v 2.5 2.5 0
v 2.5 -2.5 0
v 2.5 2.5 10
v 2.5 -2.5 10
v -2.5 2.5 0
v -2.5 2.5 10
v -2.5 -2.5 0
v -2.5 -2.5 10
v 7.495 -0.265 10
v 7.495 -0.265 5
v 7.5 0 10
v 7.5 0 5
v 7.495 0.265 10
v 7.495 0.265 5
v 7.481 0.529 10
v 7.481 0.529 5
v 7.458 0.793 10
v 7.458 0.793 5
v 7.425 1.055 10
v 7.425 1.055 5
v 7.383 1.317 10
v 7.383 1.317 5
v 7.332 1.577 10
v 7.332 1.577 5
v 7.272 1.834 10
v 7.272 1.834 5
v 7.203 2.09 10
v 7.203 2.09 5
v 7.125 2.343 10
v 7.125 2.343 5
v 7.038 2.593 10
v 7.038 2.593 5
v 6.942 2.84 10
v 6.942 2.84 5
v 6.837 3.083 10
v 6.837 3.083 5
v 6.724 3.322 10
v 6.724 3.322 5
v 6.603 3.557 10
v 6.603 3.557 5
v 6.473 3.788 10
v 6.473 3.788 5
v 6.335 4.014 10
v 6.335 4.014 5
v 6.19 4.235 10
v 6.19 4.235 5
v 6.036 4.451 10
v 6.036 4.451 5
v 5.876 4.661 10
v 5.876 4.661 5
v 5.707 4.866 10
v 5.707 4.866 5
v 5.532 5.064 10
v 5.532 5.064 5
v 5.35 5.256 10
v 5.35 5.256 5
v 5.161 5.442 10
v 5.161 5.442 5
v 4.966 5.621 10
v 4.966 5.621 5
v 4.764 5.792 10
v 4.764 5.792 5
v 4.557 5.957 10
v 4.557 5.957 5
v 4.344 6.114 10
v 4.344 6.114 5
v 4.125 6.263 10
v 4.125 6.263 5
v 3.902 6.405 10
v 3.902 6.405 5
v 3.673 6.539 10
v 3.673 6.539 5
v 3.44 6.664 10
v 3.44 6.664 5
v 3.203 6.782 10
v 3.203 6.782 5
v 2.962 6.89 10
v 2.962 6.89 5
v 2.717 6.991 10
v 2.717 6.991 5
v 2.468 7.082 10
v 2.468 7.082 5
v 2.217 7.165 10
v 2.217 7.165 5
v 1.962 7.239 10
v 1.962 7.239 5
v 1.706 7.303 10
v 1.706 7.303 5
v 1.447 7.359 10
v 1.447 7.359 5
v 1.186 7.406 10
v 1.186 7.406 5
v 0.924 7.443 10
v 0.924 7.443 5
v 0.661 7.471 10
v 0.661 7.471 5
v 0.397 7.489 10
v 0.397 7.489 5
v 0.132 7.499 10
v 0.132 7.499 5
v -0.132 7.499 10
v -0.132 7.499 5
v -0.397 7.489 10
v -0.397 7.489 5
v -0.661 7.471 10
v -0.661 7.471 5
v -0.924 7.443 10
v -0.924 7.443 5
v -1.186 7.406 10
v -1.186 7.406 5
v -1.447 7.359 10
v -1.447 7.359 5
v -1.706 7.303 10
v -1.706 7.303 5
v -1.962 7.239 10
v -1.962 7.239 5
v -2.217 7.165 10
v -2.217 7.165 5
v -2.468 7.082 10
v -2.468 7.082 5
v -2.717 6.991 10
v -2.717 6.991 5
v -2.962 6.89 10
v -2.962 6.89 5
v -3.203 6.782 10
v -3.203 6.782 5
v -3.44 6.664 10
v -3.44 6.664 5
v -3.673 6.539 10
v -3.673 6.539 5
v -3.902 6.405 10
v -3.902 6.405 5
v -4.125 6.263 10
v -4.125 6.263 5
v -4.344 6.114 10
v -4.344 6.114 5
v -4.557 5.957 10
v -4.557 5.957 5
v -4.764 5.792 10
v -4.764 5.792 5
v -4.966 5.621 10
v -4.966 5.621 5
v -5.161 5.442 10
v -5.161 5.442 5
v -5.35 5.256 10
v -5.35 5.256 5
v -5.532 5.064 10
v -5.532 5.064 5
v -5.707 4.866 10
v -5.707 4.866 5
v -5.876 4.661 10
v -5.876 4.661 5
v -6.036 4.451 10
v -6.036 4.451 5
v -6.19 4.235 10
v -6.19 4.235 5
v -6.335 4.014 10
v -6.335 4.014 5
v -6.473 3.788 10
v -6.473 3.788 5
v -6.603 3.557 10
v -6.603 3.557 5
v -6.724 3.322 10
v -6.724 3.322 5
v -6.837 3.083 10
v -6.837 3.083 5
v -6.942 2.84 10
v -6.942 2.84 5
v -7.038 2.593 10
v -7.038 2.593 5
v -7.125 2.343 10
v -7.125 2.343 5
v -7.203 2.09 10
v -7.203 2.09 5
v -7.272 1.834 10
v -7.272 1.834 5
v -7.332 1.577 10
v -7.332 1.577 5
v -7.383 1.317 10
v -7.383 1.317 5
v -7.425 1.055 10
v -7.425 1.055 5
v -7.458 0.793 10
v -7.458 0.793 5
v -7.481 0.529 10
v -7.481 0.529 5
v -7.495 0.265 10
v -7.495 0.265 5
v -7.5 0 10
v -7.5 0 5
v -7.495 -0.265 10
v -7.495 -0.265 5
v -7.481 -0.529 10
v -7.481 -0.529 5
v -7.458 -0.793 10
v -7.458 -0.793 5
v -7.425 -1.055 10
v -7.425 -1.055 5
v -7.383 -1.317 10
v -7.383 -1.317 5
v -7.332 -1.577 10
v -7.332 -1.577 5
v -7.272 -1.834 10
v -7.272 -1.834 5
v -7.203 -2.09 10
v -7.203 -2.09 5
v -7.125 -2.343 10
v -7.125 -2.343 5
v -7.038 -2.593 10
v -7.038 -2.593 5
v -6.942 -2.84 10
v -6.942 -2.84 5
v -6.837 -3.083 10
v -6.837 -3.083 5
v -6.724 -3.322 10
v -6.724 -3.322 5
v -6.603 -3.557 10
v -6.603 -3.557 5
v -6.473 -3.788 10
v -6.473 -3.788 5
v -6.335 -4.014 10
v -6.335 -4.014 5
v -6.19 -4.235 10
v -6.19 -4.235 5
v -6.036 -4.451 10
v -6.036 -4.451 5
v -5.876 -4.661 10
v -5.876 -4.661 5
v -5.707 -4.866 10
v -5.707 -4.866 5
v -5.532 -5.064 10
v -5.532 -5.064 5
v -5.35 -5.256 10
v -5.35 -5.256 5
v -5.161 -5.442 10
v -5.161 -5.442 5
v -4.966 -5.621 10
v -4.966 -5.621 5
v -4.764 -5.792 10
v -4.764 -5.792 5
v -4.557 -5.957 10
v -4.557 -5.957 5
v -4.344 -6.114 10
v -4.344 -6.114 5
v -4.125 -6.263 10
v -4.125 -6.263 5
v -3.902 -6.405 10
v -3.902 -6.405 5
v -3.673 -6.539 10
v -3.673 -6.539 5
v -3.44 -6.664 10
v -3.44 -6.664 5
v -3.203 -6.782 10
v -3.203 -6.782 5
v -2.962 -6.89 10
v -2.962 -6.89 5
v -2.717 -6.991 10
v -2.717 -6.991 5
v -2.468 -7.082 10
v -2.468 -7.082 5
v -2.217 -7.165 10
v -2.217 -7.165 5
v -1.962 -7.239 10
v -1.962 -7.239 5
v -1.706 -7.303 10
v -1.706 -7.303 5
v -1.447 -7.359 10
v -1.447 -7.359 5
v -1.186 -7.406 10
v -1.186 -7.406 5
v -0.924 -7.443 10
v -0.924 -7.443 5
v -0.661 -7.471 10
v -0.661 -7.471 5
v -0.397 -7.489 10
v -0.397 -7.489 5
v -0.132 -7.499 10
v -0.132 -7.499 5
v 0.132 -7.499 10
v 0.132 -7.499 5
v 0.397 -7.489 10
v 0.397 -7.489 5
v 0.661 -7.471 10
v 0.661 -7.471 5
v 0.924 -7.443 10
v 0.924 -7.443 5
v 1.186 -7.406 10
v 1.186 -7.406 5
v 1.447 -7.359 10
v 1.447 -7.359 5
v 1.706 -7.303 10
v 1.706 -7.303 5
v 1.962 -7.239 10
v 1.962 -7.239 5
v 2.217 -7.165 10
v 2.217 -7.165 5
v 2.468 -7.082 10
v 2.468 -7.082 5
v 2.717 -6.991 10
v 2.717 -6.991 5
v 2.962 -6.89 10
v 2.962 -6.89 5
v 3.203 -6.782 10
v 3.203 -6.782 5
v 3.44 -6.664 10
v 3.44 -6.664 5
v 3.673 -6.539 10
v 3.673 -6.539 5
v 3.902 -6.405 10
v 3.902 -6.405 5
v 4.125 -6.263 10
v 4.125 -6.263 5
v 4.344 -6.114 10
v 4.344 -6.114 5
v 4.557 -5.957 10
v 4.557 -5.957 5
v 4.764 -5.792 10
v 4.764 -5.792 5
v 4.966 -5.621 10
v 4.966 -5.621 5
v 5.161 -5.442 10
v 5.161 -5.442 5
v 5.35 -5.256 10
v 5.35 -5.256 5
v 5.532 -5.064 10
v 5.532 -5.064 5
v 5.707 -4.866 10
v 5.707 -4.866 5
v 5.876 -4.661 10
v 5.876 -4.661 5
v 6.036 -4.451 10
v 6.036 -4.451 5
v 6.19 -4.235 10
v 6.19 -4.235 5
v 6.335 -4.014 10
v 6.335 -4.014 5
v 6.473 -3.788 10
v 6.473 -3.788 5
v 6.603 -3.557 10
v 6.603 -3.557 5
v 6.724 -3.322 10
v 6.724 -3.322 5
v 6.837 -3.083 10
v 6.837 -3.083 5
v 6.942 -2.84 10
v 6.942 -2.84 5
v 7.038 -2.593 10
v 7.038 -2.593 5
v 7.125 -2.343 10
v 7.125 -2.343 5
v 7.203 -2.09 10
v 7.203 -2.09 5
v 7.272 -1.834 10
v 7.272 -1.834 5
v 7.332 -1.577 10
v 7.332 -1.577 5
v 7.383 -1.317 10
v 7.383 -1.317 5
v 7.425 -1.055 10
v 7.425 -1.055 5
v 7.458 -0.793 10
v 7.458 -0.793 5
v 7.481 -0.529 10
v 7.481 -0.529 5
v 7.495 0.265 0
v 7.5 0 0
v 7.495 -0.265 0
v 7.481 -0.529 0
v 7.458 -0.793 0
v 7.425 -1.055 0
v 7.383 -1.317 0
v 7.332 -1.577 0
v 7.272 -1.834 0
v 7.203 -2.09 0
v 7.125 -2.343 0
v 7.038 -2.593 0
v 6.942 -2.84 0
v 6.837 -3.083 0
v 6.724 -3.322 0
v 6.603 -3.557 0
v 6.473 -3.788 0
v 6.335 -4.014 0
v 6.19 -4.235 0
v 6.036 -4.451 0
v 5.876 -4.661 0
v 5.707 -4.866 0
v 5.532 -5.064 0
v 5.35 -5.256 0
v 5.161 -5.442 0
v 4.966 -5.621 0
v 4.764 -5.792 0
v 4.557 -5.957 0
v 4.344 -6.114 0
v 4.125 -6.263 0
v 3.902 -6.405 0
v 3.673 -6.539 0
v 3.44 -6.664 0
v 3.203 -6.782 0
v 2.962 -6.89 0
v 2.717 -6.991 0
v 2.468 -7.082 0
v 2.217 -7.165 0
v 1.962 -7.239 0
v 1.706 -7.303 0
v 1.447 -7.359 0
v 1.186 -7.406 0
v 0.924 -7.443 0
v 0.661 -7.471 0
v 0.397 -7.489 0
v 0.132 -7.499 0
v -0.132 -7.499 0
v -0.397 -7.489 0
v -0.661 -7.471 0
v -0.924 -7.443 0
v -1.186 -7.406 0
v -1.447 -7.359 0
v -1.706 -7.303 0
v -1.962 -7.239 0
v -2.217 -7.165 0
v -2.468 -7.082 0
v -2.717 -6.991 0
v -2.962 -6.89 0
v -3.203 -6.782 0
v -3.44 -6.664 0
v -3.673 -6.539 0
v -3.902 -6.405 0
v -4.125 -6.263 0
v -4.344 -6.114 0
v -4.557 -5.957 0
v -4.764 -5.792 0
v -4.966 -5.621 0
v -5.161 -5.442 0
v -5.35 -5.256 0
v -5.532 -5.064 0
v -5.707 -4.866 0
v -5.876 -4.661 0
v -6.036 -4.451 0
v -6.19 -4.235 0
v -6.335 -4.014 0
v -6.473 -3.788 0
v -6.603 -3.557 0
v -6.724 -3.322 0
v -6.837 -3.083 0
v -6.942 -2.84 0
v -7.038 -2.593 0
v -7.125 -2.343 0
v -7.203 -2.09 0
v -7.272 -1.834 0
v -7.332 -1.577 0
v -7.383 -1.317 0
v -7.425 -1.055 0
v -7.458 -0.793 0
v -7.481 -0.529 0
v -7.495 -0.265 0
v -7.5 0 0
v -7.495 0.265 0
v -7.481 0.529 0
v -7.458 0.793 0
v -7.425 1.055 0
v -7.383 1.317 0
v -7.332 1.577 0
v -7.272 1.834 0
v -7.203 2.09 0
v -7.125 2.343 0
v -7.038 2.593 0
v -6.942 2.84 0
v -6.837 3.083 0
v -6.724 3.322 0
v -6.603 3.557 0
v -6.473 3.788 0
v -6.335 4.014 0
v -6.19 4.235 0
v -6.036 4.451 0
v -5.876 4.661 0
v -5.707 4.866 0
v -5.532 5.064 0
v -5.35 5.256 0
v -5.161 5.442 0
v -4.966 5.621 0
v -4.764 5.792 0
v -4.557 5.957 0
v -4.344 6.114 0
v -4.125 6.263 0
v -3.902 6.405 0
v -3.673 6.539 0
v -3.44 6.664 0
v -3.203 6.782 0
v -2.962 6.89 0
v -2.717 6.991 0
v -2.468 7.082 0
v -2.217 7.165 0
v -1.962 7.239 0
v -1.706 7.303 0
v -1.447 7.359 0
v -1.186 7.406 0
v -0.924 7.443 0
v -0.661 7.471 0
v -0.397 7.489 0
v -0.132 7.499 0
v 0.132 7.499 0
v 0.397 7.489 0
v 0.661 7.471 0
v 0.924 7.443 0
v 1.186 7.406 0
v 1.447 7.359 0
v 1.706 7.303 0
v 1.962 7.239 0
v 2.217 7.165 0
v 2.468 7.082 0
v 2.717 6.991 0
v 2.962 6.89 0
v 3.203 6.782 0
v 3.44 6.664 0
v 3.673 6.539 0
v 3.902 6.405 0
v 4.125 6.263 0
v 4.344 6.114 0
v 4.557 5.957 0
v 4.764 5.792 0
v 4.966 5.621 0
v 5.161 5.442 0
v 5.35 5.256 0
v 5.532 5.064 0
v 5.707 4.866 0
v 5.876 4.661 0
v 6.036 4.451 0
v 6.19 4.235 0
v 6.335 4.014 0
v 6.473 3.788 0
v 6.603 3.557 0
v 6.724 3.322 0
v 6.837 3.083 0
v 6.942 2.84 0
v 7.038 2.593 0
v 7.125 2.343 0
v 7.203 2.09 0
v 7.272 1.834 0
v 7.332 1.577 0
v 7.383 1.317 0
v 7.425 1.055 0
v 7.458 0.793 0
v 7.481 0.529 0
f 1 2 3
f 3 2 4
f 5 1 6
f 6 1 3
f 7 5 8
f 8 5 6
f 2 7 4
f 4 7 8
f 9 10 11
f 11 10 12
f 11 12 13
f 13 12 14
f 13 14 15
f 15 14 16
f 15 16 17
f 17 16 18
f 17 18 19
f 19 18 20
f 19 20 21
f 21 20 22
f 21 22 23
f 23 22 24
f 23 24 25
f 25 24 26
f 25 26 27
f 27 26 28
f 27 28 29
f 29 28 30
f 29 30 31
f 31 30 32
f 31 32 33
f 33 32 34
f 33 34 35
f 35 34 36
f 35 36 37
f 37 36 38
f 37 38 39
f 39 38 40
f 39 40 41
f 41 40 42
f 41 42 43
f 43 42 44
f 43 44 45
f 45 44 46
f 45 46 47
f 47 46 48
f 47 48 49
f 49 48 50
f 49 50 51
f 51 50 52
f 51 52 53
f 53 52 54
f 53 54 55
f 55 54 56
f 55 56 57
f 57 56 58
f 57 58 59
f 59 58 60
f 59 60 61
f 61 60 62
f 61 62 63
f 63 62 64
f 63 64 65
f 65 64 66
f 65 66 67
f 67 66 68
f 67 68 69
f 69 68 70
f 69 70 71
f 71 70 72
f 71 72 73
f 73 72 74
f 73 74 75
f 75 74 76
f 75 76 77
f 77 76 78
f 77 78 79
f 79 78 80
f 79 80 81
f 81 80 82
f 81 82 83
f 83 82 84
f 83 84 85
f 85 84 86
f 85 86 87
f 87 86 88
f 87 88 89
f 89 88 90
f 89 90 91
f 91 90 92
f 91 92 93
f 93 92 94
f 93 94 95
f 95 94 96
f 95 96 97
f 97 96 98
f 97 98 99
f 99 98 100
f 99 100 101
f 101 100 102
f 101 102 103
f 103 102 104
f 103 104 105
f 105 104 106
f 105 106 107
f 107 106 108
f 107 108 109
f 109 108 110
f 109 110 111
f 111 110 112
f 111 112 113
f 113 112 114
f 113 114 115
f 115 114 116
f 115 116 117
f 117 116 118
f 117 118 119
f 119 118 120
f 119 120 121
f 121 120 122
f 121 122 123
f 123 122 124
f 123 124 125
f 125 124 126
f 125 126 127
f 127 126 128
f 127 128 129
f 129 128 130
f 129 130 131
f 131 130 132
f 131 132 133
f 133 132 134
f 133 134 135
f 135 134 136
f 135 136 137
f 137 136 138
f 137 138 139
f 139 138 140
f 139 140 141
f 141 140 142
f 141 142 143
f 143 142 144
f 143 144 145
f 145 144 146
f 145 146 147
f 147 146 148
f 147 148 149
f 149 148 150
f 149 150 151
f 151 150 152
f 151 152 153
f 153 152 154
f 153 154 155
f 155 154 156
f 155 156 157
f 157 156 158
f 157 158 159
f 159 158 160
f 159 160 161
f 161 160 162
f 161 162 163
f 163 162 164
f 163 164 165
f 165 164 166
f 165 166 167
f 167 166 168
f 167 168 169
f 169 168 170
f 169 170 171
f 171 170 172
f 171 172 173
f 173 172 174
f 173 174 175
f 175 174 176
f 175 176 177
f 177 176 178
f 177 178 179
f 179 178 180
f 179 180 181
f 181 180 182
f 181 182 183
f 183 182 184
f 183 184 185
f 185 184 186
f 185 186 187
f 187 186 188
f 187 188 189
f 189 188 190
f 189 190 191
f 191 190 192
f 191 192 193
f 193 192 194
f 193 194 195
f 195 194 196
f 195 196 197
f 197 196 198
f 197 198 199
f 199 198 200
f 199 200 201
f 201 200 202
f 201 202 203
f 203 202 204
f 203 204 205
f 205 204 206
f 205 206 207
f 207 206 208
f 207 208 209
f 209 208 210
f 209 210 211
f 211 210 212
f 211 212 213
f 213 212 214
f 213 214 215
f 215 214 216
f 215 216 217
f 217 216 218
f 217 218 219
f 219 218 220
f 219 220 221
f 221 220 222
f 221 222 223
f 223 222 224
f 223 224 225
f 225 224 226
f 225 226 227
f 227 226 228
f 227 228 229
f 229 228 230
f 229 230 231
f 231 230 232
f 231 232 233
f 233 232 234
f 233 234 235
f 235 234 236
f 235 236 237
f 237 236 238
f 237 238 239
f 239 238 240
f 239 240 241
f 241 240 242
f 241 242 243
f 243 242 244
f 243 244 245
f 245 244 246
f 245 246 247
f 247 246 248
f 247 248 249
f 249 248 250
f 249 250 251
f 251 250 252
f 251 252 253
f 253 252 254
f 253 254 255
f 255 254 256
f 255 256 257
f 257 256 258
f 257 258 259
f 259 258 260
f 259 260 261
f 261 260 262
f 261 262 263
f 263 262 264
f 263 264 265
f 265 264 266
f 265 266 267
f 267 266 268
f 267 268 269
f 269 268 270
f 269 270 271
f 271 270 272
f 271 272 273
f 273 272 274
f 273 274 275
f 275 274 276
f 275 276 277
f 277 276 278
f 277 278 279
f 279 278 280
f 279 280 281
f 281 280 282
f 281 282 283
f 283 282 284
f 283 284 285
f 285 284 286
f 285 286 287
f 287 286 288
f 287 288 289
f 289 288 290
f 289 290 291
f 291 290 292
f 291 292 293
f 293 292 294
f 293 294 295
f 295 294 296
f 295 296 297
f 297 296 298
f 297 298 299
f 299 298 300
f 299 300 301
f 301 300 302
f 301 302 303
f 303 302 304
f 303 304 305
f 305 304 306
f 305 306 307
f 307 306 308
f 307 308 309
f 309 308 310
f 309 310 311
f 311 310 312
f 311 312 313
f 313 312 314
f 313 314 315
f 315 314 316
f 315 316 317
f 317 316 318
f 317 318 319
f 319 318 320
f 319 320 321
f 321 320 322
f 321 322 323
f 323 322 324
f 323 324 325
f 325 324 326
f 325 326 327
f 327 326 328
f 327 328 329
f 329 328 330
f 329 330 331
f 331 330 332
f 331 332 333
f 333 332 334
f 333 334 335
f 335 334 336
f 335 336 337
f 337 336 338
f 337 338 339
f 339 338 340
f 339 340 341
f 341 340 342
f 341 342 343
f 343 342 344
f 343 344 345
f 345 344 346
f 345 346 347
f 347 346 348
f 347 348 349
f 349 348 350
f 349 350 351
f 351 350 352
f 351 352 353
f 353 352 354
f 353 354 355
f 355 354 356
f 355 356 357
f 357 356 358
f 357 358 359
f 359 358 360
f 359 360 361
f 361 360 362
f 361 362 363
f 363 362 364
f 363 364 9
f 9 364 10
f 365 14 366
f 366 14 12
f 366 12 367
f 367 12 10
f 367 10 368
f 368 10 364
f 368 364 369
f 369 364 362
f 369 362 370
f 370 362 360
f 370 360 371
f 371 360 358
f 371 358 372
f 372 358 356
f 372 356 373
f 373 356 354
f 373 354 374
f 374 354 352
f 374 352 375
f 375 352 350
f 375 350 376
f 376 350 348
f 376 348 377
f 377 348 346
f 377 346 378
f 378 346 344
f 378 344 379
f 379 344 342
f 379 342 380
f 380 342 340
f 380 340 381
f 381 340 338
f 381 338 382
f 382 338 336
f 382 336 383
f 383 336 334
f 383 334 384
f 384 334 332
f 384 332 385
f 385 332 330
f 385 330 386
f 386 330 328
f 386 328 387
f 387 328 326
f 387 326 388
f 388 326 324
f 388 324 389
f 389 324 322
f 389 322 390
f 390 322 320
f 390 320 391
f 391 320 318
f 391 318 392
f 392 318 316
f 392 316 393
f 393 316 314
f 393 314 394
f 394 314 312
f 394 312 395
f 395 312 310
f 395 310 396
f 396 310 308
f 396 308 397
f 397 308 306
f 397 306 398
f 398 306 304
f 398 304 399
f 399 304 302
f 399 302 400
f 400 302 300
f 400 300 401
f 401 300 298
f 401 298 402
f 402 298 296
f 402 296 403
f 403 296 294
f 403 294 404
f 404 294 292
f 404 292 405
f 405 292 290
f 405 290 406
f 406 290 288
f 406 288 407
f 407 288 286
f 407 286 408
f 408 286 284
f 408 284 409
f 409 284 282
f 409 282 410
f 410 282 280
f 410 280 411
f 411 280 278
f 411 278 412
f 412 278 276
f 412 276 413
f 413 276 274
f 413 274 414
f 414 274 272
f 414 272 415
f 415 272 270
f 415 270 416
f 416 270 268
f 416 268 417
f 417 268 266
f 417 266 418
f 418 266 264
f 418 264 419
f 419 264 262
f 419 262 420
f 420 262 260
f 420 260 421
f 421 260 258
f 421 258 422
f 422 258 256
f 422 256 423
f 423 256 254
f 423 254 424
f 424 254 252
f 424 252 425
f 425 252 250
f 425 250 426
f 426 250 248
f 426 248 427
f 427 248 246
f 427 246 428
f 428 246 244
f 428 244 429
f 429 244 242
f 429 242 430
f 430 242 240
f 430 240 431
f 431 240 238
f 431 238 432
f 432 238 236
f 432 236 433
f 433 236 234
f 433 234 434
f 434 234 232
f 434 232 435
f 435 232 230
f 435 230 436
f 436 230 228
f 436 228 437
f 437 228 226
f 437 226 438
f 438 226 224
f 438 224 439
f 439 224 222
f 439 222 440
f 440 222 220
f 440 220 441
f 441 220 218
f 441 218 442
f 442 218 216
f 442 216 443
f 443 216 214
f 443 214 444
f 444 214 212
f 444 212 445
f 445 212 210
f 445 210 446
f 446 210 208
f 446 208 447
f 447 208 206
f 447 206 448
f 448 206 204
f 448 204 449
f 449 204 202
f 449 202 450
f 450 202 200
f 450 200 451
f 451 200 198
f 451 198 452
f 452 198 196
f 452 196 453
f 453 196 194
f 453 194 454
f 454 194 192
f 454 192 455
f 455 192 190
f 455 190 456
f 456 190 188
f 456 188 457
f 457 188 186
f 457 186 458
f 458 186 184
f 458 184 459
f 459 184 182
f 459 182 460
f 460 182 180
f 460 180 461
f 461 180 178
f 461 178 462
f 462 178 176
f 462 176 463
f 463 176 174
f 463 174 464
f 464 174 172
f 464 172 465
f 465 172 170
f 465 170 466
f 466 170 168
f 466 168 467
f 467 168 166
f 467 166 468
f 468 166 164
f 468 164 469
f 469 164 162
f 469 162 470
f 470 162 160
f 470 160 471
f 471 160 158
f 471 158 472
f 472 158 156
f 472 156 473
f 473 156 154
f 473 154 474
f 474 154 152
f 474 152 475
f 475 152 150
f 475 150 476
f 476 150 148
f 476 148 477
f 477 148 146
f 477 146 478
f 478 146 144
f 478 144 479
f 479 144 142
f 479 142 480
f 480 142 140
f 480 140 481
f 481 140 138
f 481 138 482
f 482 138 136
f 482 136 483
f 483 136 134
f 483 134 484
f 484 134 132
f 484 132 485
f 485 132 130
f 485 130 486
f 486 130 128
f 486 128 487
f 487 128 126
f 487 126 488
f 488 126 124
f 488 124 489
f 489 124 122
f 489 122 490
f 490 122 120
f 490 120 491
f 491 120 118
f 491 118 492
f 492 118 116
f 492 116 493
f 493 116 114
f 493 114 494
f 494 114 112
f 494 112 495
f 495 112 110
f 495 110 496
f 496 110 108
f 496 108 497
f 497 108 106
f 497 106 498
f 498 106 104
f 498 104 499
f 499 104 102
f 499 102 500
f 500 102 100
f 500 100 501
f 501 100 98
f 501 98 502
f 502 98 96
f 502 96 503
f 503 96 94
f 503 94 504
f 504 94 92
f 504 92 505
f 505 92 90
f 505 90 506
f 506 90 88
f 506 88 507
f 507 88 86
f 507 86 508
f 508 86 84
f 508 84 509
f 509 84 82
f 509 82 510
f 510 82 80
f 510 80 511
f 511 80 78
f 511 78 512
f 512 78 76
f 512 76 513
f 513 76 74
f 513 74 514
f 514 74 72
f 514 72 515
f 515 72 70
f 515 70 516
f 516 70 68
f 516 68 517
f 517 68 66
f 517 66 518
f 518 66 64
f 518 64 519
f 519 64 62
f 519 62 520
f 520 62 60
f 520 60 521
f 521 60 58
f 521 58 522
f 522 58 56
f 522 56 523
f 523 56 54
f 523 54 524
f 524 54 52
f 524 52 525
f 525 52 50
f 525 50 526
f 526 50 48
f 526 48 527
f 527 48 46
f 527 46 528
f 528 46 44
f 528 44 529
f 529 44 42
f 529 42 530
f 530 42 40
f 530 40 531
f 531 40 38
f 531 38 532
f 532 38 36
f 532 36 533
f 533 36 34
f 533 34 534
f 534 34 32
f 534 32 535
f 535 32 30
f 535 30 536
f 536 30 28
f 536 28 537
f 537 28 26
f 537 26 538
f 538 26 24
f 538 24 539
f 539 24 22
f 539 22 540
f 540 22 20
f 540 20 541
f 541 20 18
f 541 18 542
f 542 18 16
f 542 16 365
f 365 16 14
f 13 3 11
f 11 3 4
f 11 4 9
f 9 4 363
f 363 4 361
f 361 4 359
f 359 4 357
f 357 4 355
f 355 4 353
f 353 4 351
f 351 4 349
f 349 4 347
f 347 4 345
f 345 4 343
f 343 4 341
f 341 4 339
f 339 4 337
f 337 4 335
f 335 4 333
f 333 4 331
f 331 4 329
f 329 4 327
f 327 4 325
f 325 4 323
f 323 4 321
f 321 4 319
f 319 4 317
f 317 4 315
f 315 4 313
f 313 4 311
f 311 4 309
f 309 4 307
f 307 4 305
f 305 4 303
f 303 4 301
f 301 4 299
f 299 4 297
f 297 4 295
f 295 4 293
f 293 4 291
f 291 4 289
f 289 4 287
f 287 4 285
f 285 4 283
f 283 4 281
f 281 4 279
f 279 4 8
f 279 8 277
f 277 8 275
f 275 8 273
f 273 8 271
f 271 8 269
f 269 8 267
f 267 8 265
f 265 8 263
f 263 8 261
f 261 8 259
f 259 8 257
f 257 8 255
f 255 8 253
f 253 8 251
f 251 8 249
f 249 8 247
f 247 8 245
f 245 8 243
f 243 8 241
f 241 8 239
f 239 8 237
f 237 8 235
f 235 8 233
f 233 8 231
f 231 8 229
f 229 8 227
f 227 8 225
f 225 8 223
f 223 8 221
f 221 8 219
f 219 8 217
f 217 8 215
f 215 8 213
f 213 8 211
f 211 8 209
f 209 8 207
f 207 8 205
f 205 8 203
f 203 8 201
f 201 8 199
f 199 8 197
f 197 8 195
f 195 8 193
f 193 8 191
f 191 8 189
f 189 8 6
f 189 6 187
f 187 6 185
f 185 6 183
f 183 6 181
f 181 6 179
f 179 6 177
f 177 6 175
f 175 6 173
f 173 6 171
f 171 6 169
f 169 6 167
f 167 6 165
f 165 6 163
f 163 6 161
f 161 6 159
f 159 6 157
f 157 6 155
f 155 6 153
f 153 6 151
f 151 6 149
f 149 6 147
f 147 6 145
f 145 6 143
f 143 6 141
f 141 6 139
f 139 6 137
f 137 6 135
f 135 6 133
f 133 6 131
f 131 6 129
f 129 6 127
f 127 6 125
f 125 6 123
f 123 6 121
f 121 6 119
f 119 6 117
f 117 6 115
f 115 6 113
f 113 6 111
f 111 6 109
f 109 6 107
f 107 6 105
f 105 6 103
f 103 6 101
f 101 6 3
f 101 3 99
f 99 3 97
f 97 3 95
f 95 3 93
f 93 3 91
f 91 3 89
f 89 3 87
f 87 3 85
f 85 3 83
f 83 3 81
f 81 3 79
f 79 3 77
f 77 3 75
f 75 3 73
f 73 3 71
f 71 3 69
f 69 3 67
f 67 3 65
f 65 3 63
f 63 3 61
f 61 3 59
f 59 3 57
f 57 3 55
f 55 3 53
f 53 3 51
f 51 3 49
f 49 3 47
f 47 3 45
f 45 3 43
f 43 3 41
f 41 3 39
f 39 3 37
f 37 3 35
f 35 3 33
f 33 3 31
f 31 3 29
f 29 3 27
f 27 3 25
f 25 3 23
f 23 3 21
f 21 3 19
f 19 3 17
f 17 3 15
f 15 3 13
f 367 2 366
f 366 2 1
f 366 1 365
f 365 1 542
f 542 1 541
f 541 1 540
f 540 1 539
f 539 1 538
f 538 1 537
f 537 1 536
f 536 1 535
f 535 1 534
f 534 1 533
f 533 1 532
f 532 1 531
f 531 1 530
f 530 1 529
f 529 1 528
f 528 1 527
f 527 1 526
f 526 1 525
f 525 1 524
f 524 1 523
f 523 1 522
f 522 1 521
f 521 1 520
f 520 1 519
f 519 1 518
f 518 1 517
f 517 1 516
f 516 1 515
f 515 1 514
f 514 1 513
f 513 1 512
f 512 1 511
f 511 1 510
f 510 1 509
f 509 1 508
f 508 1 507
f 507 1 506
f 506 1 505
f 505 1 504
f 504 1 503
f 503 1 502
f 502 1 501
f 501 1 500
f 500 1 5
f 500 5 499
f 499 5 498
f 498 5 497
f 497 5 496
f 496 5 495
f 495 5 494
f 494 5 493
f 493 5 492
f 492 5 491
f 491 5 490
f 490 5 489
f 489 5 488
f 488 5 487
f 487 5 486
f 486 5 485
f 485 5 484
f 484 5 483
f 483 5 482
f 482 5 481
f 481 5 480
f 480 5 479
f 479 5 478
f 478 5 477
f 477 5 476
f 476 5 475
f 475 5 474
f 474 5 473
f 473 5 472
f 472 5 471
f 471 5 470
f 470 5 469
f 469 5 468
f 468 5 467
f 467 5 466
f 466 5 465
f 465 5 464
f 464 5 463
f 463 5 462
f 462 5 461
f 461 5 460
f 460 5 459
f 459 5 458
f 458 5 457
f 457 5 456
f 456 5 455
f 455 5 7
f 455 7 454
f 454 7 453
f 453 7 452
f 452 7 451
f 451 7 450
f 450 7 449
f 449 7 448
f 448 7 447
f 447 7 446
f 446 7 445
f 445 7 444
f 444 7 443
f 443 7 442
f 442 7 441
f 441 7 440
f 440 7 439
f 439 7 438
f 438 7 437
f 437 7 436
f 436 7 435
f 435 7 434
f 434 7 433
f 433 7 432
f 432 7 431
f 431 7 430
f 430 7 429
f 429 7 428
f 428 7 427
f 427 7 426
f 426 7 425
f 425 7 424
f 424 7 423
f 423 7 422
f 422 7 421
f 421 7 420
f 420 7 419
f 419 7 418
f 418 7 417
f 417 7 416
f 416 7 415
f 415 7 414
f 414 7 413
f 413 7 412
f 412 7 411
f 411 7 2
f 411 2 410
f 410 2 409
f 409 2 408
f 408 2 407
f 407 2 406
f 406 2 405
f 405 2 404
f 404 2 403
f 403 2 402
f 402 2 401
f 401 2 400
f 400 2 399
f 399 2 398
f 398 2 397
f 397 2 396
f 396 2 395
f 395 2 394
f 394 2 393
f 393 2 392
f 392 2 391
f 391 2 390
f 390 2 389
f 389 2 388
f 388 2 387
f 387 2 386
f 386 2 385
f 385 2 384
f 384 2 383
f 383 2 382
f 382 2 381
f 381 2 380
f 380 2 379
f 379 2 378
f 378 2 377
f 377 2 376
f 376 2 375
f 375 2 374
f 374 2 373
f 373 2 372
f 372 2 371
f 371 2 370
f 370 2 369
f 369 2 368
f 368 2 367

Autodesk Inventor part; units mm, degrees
ref_plane "YZ Plane" through (0, 0, 0) normal (1, 0, 0) x (0, 1, 0)
ref_plane "XZ Plane" through (0, 0, 0) normal (0, 1, 0) x (-1, 0, 0)
ref_plane "XY Plane" through (0, 0, 0) normal (0, 0, 1) x (1, 0, 0)
sketch "Sketch1" plane through (0, 0, 0) normal (0, 0, 1) x (1, 0, 0)
  circle A0 centre (0, 0) radius 7.5
  line L0 (2.5, -2.5) -> (-2.5, -2.5)
  line L1 (-2.5, -2.5) -> (-2.5, 2.5)
  line L2 (-2.5, 2.5) -> (2.5, 2.5)
  line L3 (2.5, 2.5) -> (2.5, -2.5)
  line L4 (2.5, -2.5) -> (-2.5, 2.5) construction
  line L5 (-2.5, -2.5) -> (2.5, 2.5) construction
  dimension "d0" = 15
  dimension "d1" = 5
  dimension "d2" = 5
extrude "Extrusion1" add sketch "Sketch1" along normal blind 10
properties part number "ArmCylinder"
